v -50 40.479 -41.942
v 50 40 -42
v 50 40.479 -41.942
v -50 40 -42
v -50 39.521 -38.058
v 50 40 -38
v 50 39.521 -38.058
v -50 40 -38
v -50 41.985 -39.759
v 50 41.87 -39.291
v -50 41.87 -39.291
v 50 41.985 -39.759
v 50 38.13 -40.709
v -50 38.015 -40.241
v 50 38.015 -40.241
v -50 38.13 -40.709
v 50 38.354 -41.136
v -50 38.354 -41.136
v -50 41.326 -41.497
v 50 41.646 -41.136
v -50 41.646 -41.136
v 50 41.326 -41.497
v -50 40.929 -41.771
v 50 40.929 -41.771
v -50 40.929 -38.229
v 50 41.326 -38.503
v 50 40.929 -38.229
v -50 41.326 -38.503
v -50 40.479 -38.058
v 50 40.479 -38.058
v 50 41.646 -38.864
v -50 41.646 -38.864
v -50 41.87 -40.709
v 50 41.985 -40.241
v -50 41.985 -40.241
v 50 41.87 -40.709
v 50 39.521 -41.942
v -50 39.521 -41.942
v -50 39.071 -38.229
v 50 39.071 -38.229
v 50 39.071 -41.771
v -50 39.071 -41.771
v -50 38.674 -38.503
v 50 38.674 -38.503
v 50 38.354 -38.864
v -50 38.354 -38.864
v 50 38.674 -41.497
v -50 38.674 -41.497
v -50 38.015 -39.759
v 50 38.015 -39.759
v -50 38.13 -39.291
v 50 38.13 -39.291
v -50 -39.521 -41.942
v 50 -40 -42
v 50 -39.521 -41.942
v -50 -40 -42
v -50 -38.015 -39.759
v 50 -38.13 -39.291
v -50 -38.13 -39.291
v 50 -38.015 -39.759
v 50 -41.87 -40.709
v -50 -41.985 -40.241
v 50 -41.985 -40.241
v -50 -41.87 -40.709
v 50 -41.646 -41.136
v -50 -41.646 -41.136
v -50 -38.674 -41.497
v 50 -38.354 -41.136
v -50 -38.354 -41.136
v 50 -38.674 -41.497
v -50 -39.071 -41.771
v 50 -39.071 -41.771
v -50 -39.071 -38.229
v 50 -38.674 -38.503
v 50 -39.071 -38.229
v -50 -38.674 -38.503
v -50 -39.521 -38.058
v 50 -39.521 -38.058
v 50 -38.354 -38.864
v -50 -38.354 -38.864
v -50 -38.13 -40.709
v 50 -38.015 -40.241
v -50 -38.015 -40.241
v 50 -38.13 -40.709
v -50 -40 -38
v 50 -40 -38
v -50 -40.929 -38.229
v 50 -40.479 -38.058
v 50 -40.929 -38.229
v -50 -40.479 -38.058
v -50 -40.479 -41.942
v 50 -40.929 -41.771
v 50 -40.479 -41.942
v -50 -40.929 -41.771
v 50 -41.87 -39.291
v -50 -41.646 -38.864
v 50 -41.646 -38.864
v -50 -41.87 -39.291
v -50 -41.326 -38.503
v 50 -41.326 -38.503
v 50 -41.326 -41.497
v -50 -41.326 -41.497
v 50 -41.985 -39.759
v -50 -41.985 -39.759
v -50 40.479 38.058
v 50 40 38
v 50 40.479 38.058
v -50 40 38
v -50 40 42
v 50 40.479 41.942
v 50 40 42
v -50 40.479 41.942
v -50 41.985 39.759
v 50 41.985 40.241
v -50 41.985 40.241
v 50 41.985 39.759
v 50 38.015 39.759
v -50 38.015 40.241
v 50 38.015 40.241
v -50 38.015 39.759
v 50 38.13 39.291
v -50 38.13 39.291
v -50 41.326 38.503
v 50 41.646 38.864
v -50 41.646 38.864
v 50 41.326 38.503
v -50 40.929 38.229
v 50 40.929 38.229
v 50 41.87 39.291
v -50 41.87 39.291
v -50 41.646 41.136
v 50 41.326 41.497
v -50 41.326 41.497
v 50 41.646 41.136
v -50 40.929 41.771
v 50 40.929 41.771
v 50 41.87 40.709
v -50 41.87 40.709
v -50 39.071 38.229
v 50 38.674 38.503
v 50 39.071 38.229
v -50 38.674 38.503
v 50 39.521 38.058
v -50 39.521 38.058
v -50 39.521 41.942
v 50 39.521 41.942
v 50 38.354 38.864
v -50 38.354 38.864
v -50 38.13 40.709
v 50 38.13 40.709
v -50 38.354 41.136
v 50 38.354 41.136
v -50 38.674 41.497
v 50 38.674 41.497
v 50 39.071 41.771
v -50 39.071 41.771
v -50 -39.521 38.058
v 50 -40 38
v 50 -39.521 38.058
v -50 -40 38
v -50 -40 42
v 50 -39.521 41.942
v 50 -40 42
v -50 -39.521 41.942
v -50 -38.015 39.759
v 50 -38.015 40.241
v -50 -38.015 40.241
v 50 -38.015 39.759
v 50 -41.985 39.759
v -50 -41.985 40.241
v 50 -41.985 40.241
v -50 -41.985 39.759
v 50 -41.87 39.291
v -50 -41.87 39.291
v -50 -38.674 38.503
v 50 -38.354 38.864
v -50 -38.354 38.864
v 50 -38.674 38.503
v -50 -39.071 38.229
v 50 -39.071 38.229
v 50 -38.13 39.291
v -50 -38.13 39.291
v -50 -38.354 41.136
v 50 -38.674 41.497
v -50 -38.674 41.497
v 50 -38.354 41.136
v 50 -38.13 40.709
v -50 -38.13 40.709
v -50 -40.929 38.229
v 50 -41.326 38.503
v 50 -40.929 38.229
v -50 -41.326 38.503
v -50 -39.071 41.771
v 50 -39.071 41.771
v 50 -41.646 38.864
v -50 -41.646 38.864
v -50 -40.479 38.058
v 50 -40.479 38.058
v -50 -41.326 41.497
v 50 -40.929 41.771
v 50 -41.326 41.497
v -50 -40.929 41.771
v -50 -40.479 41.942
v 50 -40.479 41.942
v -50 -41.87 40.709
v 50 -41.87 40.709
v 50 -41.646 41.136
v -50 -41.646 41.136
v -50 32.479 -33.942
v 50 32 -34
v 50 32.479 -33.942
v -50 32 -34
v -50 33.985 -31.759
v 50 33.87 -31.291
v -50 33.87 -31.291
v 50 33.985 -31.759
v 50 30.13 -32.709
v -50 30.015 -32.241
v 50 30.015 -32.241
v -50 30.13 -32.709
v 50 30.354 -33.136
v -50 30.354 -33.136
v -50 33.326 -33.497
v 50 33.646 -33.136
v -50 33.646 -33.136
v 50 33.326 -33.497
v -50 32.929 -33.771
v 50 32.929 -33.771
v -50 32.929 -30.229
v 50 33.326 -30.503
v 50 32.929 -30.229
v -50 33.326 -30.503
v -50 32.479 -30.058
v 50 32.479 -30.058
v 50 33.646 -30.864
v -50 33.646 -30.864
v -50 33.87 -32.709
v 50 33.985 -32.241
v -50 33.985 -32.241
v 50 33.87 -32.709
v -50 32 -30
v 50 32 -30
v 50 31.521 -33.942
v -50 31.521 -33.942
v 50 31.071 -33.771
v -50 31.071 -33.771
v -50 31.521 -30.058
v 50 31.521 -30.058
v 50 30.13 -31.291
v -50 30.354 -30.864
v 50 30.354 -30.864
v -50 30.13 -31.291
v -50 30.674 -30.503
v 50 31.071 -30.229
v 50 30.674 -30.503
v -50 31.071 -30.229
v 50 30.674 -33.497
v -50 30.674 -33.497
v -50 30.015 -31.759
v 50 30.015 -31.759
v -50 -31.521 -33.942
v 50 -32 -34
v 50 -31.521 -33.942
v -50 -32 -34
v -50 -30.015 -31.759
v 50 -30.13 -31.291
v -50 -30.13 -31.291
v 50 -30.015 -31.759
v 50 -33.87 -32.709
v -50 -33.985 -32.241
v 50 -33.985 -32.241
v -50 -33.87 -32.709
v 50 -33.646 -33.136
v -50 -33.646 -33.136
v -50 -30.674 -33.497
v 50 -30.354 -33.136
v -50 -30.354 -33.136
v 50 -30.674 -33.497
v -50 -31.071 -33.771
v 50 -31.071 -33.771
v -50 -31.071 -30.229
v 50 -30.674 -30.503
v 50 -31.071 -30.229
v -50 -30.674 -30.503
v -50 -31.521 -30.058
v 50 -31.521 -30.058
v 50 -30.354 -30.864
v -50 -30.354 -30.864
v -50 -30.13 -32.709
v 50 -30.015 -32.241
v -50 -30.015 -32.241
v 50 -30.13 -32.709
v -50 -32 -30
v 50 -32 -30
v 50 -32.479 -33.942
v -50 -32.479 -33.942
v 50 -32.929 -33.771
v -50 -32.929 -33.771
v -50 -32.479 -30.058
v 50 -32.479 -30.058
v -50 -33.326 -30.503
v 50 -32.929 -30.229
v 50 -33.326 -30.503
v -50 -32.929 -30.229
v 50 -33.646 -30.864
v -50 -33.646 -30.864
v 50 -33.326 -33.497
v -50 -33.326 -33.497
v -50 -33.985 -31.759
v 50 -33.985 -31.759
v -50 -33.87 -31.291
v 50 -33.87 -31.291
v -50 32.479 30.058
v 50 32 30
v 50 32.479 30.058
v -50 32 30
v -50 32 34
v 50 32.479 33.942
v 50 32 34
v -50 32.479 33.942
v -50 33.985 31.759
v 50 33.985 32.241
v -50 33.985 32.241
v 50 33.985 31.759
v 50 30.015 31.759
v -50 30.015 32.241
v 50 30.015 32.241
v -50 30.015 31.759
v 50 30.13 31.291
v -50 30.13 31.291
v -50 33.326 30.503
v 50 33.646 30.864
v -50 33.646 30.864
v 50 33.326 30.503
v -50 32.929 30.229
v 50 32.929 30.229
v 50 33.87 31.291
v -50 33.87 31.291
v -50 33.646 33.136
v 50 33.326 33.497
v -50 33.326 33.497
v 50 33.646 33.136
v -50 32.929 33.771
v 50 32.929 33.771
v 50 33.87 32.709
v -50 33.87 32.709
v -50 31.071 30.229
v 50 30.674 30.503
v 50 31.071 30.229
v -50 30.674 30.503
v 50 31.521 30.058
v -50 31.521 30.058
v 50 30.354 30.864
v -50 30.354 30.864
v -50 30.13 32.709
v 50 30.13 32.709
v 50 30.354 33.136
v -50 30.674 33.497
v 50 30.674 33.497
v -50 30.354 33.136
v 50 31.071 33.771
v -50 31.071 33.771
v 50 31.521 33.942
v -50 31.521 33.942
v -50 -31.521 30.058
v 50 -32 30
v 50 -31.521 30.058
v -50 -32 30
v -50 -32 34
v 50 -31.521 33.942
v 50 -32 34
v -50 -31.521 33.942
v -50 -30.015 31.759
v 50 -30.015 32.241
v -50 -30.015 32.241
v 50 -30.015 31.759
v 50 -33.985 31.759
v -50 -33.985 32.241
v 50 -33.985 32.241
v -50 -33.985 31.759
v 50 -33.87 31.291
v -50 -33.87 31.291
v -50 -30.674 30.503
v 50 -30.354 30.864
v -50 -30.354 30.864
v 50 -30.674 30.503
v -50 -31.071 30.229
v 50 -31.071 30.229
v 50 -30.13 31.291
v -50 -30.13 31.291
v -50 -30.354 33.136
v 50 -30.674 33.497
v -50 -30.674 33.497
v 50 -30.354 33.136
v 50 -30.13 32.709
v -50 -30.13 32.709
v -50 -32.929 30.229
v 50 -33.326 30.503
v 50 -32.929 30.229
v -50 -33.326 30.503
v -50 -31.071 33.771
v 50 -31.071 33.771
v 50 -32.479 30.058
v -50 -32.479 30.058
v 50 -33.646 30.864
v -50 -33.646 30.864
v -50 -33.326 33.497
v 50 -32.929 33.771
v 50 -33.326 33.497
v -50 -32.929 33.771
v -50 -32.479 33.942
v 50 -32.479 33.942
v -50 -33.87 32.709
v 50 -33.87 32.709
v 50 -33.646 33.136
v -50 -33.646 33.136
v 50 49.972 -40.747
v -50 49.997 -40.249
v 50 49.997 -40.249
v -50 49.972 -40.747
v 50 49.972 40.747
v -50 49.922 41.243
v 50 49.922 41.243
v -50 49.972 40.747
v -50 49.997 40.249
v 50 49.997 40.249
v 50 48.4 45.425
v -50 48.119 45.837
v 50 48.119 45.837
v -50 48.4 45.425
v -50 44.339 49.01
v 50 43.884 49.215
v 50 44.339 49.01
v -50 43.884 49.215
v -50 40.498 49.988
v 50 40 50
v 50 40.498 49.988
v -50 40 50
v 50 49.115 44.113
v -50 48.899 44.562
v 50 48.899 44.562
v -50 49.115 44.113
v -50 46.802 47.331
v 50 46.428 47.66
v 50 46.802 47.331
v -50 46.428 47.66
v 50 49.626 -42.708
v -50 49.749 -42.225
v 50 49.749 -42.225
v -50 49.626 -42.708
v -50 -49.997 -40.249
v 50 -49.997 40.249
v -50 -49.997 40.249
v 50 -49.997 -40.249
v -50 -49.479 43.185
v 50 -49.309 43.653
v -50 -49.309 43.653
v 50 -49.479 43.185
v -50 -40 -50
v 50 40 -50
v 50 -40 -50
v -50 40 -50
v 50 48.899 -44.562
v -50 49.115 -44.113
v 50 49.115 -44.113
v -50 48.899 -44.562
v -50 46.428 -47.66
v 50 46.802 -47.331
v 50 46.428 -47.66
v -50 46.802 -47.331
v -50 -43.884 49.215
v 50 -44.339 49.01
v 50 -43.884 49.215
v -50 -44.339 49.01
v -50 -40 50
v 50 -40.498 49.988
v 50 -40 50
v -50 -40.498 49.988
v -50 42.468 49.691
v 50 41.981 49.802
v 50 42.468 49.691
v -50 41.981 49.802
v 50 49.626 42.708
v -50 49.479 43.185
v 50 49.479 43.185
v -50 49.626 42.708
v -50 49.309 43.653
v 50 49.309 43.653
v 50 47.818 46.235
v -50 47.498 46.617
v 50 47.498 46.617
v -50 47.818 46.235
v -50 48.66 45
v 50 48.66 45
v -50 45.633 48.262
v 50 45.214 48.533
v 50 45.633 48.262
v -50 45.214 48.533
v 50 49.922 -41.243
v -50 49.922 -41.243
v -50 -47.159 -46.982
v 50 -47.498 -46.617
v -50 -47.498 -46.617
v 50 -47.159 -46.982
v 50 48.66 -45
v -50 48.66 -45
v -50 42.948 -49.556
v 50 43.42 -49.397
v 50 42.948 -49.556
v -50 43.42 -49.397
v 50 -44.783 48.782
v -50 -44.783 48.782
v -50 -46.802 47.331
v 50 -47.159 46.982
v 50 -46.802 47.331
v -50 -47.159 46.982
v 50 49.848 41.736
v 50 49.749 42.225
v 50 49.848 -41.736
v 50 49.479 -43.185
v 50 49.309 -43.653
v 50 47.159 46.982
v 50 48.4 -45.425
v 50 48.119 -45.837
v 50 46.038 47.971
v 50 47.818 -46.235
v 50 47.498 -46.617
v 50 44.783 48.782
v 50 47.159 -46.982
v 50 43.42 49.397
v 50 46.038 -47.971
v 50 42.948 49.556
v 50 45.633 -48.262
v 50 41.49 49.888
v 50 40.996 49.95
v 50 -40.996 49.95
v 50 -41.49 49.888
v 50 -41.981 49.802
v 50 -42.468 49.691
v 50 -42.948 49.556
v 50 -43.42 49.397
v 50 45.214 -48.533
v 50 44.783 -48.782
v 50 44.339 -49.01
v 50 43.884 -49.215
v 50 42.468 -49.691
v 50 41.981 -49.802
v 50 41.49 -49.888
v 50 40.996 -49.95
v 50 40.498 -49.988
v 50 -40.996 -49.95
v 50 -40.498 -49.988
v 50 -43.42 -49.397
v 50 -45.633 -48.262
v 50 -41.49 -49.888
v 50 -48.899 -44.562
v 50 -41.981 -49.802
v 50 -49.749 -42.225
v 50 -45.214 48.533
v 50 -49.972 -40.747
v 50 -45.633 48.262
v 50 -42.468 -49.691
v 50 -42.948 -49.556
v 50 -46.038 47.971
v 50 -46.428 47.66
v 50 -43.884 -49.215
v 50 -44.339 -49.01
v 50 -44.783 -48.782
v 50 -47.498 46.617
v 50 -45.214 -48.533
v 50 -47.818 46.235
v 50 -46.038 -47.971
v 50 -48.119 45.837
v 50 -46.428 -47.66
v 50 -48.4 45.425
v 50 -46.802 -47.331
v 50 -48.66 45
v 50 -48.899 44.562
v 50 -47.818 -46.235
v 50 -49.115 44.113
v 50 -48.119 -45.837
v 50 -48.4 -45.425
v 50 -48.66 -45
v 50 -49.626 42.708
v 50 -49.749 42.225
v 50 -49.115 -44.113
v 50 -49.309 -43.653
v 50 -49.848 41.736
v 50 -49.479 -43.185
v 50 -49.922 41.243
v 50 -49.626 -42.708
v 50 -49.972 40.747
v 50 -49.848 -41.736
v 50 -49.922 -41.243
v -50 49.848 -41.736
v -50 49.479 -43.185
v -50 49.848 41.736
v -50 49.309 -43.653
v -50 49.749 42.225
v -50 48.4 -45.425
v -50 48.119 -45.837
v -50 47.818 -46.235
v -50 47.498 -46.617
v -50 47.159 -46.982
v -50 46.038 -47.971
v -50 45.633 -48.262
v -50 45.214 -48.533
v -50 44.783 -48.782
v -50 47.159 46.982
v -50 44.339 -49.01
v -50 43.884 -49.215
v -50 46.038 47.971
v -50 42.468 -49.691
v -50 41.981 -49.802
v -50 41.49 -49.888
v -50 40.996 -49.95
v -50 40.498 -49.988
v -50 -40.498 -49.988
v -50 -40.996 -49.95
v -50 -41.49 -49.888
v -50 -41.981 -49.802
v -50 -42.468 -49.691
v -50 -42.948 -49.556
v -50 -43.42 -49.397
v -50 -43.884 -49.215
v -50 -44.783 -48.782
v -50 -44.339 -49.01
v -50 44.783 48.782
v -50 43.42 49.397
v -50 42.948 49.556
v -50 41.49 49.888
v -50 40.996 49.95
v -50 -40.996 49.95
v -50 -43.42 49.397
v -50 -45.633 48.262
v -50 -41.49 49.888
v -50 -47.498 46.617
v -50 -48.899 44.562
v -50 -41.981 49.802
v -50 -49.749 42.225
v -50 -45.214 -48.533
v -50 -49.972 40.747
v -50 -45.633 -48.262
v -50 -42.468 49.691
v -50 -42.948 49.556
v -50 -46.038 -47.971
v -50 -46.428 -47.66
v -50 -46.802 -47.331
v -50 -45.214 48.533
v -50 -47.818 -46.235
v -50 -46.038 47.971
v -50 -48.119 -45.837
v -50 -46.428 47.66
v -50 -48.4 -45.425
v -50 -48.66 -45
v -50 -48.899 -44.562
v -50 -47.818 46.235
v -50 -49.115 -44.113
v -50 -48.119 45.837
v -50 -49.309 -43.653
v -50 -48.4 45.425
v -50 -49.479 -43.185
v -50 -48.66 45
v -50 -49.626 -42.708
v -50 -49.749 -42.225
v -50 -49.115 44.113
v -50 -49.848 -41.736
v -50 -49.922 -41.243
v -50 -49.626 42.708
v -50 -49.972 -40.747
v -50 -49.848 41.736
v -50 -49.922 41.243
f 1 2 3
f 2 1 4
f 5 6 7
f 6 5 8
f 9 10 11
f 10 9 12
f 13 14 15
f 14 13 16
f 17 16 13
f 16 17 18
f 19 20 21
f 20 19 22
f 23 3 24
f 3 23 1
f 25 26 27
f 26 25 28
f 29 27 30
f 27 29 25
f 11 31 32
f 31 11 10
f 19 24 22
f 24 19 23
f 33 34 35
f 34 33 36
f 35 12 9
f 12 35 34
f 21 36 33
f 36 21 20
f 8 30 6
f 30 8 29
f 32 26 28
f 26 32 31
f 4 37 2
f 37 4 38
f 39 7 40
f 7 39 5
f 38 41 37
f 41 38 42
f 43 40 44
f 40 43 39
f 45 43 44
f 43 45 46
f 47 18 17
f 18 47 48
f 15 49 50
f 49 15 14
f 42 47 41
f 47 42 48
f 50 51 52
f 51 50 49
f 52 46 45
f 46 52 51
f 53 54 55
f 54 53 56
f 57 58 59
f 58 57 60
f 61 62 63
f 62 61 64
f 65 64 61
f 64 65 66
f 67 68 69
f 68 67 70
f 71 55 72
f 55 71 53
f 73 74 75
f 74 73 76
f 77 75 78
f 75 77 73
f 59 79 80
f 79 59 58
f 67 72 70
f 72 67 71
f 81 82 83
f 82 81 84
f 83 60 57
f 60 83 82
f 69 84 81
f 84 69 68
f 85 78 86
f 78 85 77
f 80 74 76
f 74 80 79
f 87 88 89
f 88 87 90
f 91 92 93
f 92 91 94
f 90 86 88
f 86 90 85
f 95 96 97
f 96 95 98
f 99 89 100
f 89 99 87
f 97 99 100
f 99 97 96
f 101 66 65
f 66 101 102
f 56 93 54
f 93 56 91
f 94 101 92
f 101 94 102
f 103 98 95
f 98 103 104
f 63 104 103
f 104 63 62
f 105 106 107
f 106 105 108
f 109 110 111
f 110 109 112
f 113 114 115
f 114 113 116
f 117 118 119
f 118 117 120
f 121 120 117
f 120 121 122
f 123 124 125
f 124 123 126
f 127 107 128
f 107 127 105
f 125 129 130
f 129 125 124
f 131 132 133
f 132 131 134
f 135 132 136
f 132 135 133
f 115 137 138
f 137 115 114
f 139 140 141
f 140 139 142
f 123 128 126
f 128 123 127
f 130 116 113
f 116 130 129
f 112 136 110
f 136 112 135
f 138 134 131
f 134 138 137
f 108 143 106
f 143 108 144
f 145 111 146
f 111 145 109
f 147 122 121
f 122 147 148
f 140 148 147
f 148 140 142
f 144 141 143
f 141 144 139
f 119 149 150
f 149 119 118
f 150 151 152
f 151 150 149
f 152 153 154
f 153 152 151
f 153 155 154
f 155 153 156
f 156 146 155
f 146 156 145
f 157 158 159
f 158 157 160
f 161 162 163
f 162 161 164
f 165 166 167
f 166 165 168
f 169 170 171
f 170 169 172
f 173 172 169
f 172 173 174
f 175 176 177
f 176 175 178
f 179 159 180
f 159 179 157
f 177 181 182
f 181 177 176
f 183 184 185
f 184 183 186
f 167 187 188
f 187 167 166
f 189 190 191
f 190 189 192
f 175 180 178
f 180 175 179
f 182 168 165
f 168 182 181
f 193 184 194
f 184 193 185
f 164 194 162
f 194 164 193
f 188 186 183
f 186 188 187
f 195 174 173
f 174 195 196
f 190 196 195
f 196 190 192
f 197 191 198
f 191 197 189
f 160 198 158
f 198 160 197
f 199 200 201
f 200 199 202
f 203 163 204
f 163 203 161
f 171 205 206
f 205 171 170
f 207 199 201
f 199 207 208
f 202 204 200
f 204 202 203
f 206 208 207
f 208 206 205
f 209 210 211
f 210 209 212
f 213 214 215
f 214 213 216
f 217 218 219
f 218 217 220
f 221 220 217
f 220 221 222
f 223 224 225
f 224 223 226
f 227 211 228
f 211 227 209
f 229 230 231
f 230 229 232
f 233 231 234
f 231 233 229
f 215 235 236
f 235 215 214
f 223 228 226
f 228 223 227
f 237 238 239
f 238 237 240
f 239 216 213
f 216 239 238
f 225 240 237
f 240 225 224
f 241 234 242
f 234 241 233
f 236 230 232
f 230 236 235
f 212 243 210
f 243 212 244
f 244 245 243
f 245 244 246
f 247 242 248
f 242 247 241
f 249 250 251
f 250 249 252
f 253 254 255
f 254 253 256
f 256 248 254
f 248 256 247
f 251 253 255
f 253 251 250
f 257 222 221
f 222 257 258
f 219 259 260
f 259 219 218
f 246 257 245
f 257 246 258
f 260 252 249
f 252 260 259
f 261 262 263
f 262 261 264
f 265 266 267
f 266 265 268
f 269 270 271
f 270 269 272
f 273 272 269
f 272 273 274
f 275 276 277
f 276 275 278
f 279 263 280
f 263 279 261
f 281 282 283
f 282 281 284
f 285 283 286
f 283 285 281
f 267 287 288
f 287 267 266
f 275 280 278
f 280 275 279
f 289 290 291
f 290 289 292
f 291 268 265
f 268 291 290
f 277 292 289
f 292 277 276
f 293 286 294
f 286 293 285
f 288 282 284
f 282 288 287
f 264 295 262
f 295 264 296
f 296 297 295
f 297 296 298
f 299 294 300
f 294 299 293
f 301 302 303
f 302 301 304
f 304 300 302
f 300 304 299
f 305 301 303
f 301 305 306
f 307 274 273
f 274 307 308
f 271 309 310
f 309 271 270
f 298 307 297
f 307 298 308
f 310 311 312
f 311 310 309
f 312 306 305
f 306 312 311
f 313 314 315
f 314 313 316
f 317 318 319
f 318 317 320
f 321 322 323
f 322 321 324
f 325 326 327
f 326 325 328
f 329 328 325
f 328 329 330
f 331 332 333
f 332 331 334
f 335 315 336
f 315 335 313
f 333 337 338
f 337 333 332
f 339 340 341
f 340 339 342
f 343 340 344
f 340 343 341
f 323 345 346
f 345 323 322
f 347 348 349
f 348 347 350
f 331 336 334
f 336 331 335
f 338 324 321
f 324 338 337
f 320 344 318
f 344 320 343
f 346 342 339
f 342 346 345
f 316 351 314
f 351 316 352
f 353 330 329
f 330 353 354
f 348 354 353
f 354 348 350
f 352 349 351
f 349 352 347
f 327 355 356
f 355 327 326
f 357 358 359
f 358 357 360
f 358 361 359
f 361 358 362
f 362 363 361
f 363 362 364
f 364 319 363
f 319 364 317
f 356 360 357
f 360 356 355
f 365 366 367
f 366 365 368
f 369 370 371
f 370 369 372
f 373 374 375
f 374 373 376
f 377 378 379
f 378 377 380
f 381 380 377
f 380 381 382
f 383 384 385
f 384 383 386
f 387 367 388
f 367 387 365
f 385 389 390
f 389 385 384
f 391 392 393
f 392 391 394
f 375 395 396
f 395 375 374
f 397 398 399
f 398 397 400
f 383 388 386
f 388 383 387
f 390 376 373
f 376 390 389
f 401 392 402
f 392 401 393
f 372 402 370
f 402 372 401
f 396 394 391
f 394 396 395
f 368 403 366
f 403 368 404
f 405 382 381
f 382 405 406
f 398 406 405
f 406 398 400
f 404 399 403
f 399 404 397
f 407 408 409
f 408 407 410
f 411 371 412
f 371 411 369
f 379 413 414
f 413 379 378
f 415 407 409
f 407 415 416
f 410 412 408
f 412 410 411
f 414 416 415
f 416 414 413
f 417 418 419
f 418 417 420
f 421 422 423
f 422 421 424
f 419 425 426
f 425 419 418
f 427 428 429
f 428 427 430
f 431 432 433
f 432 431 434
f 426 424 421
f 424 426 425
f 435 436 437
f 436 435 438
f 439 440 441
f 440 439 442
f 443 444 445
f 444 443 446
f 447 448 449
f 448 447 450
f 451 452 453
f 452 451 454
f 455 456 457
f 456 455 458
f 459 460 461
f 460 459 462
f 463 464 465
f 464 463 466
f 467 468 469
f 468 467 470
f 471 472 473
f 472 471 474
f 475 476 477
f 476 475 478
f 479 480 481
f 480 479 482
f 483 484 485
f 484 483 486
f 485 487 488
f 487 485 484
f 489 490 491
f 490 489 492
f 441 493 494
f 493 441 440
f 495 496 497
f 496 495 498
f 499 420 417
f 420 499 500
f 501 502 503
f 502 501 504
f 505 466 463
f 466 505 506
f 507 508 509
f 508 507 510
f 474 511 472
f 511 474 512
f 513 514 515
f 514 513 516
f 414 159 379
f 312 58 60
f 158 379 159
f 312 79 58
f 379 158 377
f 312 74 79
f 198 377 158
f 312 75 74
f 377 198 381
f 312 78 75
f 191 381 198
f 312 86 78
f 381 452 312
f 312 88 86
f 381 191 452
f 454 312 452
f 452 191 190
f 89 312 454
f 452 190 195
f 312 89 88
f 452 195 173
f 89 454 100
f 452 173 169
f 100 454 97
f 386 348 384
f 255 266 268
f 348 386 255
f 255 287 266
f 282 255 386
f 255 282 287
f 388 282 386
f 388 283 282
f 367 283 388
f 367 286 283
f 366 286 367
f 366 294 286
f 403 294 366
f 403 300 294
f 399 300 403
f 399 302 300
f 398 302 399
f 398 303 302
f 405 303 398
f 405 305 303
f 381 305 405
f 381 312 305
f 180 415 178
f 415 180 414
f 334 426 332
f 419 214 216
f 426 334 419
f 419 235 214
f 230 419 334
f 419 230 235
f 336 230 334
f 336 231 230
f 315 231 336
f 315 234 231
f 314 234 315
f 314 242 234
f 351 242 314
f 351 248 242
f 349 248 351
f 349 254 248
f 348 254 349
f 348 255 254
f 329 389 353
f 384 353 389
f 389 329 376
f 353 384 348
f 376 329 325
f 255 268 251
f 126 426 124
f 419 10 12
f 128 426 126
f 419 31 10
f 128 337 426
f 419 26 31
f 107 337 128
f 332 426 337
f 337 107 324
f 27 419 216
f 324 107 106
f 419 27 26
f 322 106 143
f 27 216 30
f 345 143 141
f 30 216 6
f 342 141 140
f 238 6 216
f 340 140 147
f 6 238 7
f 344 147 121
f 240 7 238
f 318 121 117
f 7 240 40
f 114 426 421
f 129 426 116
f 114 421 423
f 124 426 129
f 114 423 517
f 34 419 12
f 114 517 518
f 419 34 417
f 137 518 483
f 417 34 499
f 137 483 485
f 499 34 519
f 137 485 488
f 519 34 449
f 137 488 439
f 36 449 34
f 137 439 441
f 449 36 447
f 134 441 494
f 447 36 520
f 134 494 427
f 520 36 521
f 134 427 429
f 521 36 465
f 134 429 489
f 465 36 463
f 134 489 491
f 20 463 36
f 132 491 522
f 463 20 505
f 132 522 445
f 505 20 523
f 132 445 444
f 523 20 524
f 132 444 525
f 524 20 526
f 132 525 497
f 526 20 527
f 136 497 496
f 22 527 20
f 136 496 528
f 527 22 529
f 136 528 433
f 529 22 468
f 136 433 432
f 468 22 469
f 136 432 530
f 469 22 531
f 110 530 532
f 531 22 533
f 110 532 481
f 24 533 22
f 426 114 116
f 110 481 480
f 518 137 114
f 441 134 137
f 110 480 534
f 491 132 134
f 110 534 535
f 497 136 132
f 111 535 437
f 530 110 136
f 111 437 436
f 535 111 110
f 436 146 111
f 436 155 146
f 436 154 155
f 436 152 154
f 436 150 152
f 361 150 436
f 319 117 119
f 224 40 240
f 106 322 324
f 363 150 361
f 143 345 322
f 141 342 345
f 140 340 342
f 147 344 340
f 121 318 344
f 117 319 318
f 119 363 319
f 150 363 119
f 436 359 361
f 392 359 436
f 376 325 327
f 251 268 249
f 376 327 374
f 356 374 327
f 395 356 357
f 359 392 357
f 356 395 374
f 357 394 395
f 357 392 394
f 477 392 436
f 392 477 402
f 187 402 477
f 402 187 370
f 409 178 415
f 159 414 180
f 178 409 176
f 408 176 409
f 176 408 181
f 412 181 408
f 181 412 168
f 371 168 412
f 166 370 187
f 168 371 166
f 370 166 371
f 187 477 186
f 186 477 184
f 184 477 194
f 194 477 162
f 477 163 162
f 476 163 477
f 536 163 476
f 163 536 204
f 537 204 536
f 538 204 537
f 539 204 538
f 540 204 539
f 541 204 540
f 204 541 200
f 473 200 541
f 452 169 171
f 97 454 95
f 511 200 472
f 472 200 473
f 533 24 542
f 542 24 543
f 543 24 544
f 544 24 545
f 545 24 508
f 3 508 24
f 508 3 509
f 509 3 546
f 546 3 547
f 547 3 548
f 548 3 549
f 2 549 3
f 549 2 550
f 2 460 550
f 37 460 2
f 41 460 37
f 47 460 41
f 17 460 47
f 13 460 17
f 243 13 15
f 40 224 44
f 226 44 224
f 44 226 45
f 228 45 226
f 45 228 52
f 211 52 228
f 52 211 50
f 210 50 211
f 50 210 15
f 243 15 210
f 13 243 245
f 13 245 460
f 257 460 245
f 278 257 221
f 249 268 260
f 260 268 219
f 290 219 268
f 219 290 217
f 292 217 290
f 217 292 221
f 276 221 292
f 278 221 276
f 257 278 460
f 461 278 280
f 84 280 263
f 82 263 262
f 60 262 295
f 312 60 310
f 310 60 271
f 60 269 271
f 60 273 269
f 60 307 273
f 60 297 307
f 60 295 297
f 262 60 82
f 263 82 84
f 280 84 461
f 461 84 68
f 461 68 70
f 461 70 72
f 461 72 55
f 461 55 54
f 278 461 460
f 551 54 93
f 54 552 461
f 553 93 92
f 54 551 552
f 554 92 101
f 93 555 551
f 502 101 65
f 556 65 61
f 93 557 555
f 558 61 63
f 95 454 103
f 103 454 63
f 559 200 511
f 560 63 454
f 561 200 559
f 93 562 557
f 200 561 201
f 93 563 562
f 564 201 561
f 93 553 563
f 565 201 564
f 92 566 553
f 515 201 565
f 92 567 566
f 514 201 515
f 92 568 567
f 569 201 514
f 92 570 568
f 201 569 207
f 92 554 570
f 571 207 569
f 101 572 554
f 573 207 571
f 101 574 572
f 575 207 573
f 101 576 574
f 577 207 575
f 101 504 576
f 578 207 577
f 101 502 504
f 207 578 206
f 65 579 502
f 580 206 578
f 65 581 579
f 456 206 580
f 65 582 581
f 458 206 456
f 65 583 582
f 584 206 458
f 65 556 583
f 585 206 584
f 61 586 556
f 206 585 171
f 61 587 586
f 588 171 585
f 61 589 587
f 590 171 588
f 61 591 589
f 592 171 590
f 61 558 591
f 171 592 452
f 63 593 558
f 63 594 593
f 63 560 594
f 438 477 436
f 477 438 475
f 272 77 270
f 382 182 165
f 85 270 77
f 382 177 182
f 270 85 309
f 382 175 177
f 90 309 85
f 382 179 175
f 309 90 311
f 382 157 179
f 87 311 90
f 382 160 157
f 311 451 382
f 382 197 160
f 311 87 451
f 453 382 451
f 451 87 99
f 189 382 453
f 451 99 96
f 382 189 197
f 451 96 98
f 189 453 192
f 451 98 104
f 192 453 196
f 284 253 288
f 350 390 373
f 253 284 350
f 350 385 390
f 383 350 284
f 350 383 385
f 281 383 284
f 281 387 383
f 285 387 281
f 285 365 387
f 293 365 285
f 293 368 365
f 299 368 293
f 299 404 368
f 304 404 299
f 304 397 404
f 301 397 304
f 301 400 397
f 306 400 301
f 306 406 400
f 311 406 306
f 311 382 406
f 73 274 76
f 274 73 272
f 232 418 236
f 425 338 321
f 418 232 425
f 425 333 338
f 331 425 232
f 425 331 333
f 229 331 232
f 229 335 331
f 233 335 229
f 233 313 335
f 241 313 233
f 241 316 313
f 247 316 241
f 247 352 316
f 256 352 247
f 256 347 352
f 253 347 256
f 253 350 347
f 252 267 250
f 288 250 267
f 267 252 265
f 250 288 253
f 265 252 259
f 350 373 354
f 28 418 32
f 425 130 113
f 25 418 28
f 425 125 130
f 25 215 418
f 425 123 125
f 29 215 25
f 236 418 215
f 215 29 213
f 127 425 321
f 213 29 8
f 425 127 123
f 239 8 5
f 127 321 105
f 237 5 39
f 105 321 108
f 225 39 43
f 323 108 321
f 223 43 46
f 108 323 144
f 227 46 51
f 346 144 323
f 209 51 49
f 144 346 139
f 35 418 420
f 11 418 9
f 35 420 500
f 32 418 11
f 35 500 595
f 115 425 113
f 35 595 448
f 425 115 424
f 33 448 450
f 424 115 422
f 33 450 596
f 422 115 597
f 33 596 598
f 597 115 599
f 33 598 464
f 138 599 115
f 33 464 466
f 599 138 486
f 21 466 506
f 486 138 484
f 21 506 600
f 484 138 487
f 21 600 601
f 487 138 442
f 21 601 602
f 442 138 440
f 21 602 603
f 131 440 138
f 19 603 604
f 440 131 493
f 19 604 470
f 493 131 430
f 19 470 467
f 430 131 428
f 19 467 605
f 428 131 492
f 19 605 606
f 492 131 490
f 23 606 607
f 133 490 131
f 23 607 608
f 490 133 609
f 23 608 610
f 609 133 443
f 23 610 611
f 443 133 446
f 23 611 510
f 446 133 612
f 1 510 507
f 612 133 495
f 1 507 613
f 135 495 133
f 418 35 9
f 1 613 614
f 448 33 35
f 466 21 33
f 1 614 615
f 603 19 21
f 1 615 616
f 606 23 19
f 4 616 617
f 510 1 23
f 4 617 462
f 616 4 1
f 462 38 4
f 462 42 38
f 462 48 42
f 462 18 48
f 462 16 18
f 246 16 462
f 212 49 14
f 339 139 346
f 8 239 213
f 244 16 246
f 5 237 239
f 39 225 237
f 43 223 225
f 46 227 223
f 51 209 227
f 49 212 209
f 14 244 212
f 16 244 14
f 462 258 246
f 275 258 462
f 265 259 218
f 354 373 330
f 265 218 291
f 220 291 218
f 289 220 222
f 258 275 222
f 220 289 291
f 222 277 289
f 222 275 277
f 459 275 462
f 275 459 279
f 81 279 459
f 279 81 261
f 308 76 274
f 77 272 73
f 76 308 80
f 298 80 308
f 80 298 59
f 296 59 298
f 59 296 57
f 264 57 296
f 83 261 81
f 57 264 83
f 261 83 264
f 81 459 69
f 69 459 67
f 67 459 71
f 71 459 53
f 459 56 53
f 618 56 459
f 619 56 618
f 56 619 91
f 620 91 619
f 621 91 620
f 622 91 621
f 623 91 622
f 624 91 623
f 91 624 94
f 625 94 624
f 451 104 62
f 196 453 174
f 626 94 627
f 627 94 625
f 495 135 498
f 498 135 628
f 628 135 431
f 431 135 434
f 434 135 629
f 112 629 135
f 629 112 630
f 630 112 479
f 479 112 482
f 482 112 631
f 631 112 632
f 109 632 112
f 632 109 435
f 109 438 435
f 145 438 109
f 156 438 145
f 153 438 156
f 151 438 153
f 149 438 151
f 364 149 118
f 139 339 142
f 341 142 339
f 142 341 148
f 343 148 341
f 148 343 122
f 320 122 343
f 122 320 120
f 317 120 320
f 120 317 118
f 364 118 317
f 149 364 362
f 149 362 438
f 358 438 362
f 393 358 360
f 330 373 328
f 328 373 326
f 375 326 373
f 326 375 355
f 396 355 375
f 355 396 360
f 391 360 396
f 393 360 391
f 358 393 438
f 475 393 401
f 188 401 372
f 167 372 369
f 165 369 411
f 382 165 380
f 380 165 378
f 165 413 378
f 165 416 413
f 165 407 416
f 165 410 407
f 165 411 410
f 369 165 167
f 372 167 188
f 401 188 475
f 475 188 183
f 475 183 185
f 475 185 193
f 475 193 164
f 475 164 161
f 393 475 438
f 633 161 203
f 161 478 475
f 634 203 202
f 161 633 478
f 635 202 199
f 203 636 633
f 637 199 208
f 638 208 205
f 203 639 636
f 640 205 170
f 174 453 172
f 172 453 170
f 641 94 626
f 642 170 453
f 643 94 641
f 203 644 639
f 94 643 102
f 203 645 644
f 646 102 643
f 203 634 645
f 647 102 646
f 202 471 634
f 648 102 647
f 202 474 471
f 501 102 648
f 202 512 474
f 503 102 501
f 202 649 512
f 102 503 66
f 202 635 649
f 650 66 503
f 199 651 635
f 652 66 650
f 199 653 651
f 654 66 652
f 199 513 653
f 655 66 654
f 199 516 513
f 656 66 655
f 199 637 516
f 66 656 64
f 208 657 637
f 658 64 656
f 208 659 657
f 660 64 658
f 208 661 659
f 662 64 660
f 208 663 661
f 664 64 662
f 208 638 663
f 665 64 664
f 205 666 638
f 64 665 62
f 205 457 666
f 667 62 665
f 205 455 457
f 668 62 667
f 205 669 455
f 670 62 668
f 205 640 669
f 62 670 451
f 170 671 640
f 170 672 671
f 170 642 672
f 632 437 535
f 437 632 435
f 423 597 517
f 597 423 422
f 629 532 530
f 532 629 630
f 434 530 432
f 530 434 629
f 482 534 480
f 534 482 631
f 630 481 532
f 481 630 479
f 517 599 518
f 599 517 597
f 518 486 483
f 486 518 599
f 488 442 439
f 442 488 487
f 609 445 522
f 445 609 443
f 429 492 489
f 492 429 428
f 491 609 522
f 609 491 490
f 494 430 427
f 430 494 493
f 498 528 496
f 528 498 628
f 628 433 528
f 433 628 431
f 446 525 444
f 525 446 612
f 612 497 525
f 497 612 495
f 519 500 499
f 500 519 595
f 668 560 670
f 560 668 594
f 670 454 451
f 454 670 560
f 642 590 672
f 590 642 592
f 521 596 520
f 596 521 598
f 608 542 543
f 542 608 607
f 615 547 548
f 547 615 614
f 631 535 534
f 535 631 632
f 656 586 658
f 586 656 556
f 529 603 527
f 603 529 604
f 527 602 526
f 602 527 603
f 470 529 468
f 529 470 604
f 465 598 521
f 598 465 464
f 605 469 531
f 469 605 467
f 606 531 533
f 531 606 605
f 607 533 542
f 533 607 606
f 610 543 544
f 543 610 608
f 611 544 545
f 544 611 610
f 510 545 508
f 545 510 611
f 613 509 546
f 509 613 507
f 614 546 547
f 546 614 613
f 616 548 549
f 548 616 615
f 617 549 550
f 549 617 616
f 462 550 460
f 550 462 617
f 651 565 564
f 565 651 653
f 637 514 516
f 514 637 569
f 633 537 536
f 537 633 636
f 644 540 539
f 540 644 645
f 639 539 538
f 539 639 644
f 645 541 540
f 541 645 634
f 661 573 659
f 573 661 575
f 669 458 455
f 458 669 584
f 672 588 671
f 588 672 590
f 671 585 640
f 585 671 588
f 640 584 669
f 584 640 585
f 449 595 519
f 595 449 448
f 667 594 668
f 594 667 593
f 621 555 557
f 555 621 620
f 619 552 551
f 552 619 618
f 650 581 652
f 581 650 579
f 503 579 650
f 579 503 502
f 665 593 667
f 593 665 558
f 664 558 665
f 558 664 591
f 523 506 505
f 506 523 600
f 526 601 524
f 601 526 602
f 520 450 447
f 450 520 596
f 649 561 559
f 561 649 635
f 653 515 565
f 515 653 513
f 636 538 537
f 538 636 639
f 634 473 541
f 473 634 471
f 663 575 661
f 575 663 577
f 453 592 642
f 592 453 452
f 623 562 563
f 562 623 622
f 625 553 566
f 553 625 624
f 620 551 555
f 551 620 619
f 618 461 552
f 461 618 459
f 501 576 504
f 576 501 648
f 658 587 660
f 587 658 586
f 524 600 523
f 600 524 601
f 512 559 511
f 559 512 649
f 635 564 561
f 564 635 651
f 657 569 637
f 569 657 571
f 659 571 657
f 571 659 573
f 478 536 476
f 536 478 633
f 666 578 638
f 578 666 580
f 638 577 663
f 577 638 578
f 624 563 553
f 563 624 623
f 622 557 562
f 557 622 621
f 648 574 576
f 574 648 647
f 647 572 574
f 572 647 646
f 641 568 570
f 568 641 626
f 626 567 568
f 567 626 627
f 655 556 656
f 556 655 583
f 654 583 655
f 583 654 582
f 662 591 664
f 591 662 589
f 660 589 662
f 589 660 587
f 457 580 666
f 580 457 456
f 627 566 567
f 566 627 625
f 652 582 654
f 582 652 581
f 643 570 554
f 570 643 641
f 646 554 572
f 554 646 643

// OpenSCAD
$fa=1;
$fs=0.5;

FX = 1;
U = 1;

scale([FX*U,U,U]) {
rotate([0,90,0]) {
    difference(){
        minkowski()
        {
            cube(size = [80,80,80], center = true);
            cylinder(r=10,h=20, center = true);
        }
        union() {
            translate([40,40,0]) {
                cylinder(r=2,h=200, center = true);
            }
            translate([40,-40,0]) {
                cylinder(r=2,h=200, center = true);
            }
            translate([-40,40,0]) {
                cylinder(r=2,h=200, center = true);
            }
            translate([-40,-40,0]) {
                cylinder(r=2,h=200, center = true);
            }
            translate([32,32,0]) {
                cylinder(r=2,h=200, center = true);
            }
            translate([32,-32,0]) {
                cylinder(r=2,h=200, center = true);
            }
            translate([-32,32,0]) {
                cylinder(r=2,h=200, center = true);
            }
            translate([-32,-32,0]) {
                cylinder(r=2,h=200, center = true);
            }
        }
    }
}
}
